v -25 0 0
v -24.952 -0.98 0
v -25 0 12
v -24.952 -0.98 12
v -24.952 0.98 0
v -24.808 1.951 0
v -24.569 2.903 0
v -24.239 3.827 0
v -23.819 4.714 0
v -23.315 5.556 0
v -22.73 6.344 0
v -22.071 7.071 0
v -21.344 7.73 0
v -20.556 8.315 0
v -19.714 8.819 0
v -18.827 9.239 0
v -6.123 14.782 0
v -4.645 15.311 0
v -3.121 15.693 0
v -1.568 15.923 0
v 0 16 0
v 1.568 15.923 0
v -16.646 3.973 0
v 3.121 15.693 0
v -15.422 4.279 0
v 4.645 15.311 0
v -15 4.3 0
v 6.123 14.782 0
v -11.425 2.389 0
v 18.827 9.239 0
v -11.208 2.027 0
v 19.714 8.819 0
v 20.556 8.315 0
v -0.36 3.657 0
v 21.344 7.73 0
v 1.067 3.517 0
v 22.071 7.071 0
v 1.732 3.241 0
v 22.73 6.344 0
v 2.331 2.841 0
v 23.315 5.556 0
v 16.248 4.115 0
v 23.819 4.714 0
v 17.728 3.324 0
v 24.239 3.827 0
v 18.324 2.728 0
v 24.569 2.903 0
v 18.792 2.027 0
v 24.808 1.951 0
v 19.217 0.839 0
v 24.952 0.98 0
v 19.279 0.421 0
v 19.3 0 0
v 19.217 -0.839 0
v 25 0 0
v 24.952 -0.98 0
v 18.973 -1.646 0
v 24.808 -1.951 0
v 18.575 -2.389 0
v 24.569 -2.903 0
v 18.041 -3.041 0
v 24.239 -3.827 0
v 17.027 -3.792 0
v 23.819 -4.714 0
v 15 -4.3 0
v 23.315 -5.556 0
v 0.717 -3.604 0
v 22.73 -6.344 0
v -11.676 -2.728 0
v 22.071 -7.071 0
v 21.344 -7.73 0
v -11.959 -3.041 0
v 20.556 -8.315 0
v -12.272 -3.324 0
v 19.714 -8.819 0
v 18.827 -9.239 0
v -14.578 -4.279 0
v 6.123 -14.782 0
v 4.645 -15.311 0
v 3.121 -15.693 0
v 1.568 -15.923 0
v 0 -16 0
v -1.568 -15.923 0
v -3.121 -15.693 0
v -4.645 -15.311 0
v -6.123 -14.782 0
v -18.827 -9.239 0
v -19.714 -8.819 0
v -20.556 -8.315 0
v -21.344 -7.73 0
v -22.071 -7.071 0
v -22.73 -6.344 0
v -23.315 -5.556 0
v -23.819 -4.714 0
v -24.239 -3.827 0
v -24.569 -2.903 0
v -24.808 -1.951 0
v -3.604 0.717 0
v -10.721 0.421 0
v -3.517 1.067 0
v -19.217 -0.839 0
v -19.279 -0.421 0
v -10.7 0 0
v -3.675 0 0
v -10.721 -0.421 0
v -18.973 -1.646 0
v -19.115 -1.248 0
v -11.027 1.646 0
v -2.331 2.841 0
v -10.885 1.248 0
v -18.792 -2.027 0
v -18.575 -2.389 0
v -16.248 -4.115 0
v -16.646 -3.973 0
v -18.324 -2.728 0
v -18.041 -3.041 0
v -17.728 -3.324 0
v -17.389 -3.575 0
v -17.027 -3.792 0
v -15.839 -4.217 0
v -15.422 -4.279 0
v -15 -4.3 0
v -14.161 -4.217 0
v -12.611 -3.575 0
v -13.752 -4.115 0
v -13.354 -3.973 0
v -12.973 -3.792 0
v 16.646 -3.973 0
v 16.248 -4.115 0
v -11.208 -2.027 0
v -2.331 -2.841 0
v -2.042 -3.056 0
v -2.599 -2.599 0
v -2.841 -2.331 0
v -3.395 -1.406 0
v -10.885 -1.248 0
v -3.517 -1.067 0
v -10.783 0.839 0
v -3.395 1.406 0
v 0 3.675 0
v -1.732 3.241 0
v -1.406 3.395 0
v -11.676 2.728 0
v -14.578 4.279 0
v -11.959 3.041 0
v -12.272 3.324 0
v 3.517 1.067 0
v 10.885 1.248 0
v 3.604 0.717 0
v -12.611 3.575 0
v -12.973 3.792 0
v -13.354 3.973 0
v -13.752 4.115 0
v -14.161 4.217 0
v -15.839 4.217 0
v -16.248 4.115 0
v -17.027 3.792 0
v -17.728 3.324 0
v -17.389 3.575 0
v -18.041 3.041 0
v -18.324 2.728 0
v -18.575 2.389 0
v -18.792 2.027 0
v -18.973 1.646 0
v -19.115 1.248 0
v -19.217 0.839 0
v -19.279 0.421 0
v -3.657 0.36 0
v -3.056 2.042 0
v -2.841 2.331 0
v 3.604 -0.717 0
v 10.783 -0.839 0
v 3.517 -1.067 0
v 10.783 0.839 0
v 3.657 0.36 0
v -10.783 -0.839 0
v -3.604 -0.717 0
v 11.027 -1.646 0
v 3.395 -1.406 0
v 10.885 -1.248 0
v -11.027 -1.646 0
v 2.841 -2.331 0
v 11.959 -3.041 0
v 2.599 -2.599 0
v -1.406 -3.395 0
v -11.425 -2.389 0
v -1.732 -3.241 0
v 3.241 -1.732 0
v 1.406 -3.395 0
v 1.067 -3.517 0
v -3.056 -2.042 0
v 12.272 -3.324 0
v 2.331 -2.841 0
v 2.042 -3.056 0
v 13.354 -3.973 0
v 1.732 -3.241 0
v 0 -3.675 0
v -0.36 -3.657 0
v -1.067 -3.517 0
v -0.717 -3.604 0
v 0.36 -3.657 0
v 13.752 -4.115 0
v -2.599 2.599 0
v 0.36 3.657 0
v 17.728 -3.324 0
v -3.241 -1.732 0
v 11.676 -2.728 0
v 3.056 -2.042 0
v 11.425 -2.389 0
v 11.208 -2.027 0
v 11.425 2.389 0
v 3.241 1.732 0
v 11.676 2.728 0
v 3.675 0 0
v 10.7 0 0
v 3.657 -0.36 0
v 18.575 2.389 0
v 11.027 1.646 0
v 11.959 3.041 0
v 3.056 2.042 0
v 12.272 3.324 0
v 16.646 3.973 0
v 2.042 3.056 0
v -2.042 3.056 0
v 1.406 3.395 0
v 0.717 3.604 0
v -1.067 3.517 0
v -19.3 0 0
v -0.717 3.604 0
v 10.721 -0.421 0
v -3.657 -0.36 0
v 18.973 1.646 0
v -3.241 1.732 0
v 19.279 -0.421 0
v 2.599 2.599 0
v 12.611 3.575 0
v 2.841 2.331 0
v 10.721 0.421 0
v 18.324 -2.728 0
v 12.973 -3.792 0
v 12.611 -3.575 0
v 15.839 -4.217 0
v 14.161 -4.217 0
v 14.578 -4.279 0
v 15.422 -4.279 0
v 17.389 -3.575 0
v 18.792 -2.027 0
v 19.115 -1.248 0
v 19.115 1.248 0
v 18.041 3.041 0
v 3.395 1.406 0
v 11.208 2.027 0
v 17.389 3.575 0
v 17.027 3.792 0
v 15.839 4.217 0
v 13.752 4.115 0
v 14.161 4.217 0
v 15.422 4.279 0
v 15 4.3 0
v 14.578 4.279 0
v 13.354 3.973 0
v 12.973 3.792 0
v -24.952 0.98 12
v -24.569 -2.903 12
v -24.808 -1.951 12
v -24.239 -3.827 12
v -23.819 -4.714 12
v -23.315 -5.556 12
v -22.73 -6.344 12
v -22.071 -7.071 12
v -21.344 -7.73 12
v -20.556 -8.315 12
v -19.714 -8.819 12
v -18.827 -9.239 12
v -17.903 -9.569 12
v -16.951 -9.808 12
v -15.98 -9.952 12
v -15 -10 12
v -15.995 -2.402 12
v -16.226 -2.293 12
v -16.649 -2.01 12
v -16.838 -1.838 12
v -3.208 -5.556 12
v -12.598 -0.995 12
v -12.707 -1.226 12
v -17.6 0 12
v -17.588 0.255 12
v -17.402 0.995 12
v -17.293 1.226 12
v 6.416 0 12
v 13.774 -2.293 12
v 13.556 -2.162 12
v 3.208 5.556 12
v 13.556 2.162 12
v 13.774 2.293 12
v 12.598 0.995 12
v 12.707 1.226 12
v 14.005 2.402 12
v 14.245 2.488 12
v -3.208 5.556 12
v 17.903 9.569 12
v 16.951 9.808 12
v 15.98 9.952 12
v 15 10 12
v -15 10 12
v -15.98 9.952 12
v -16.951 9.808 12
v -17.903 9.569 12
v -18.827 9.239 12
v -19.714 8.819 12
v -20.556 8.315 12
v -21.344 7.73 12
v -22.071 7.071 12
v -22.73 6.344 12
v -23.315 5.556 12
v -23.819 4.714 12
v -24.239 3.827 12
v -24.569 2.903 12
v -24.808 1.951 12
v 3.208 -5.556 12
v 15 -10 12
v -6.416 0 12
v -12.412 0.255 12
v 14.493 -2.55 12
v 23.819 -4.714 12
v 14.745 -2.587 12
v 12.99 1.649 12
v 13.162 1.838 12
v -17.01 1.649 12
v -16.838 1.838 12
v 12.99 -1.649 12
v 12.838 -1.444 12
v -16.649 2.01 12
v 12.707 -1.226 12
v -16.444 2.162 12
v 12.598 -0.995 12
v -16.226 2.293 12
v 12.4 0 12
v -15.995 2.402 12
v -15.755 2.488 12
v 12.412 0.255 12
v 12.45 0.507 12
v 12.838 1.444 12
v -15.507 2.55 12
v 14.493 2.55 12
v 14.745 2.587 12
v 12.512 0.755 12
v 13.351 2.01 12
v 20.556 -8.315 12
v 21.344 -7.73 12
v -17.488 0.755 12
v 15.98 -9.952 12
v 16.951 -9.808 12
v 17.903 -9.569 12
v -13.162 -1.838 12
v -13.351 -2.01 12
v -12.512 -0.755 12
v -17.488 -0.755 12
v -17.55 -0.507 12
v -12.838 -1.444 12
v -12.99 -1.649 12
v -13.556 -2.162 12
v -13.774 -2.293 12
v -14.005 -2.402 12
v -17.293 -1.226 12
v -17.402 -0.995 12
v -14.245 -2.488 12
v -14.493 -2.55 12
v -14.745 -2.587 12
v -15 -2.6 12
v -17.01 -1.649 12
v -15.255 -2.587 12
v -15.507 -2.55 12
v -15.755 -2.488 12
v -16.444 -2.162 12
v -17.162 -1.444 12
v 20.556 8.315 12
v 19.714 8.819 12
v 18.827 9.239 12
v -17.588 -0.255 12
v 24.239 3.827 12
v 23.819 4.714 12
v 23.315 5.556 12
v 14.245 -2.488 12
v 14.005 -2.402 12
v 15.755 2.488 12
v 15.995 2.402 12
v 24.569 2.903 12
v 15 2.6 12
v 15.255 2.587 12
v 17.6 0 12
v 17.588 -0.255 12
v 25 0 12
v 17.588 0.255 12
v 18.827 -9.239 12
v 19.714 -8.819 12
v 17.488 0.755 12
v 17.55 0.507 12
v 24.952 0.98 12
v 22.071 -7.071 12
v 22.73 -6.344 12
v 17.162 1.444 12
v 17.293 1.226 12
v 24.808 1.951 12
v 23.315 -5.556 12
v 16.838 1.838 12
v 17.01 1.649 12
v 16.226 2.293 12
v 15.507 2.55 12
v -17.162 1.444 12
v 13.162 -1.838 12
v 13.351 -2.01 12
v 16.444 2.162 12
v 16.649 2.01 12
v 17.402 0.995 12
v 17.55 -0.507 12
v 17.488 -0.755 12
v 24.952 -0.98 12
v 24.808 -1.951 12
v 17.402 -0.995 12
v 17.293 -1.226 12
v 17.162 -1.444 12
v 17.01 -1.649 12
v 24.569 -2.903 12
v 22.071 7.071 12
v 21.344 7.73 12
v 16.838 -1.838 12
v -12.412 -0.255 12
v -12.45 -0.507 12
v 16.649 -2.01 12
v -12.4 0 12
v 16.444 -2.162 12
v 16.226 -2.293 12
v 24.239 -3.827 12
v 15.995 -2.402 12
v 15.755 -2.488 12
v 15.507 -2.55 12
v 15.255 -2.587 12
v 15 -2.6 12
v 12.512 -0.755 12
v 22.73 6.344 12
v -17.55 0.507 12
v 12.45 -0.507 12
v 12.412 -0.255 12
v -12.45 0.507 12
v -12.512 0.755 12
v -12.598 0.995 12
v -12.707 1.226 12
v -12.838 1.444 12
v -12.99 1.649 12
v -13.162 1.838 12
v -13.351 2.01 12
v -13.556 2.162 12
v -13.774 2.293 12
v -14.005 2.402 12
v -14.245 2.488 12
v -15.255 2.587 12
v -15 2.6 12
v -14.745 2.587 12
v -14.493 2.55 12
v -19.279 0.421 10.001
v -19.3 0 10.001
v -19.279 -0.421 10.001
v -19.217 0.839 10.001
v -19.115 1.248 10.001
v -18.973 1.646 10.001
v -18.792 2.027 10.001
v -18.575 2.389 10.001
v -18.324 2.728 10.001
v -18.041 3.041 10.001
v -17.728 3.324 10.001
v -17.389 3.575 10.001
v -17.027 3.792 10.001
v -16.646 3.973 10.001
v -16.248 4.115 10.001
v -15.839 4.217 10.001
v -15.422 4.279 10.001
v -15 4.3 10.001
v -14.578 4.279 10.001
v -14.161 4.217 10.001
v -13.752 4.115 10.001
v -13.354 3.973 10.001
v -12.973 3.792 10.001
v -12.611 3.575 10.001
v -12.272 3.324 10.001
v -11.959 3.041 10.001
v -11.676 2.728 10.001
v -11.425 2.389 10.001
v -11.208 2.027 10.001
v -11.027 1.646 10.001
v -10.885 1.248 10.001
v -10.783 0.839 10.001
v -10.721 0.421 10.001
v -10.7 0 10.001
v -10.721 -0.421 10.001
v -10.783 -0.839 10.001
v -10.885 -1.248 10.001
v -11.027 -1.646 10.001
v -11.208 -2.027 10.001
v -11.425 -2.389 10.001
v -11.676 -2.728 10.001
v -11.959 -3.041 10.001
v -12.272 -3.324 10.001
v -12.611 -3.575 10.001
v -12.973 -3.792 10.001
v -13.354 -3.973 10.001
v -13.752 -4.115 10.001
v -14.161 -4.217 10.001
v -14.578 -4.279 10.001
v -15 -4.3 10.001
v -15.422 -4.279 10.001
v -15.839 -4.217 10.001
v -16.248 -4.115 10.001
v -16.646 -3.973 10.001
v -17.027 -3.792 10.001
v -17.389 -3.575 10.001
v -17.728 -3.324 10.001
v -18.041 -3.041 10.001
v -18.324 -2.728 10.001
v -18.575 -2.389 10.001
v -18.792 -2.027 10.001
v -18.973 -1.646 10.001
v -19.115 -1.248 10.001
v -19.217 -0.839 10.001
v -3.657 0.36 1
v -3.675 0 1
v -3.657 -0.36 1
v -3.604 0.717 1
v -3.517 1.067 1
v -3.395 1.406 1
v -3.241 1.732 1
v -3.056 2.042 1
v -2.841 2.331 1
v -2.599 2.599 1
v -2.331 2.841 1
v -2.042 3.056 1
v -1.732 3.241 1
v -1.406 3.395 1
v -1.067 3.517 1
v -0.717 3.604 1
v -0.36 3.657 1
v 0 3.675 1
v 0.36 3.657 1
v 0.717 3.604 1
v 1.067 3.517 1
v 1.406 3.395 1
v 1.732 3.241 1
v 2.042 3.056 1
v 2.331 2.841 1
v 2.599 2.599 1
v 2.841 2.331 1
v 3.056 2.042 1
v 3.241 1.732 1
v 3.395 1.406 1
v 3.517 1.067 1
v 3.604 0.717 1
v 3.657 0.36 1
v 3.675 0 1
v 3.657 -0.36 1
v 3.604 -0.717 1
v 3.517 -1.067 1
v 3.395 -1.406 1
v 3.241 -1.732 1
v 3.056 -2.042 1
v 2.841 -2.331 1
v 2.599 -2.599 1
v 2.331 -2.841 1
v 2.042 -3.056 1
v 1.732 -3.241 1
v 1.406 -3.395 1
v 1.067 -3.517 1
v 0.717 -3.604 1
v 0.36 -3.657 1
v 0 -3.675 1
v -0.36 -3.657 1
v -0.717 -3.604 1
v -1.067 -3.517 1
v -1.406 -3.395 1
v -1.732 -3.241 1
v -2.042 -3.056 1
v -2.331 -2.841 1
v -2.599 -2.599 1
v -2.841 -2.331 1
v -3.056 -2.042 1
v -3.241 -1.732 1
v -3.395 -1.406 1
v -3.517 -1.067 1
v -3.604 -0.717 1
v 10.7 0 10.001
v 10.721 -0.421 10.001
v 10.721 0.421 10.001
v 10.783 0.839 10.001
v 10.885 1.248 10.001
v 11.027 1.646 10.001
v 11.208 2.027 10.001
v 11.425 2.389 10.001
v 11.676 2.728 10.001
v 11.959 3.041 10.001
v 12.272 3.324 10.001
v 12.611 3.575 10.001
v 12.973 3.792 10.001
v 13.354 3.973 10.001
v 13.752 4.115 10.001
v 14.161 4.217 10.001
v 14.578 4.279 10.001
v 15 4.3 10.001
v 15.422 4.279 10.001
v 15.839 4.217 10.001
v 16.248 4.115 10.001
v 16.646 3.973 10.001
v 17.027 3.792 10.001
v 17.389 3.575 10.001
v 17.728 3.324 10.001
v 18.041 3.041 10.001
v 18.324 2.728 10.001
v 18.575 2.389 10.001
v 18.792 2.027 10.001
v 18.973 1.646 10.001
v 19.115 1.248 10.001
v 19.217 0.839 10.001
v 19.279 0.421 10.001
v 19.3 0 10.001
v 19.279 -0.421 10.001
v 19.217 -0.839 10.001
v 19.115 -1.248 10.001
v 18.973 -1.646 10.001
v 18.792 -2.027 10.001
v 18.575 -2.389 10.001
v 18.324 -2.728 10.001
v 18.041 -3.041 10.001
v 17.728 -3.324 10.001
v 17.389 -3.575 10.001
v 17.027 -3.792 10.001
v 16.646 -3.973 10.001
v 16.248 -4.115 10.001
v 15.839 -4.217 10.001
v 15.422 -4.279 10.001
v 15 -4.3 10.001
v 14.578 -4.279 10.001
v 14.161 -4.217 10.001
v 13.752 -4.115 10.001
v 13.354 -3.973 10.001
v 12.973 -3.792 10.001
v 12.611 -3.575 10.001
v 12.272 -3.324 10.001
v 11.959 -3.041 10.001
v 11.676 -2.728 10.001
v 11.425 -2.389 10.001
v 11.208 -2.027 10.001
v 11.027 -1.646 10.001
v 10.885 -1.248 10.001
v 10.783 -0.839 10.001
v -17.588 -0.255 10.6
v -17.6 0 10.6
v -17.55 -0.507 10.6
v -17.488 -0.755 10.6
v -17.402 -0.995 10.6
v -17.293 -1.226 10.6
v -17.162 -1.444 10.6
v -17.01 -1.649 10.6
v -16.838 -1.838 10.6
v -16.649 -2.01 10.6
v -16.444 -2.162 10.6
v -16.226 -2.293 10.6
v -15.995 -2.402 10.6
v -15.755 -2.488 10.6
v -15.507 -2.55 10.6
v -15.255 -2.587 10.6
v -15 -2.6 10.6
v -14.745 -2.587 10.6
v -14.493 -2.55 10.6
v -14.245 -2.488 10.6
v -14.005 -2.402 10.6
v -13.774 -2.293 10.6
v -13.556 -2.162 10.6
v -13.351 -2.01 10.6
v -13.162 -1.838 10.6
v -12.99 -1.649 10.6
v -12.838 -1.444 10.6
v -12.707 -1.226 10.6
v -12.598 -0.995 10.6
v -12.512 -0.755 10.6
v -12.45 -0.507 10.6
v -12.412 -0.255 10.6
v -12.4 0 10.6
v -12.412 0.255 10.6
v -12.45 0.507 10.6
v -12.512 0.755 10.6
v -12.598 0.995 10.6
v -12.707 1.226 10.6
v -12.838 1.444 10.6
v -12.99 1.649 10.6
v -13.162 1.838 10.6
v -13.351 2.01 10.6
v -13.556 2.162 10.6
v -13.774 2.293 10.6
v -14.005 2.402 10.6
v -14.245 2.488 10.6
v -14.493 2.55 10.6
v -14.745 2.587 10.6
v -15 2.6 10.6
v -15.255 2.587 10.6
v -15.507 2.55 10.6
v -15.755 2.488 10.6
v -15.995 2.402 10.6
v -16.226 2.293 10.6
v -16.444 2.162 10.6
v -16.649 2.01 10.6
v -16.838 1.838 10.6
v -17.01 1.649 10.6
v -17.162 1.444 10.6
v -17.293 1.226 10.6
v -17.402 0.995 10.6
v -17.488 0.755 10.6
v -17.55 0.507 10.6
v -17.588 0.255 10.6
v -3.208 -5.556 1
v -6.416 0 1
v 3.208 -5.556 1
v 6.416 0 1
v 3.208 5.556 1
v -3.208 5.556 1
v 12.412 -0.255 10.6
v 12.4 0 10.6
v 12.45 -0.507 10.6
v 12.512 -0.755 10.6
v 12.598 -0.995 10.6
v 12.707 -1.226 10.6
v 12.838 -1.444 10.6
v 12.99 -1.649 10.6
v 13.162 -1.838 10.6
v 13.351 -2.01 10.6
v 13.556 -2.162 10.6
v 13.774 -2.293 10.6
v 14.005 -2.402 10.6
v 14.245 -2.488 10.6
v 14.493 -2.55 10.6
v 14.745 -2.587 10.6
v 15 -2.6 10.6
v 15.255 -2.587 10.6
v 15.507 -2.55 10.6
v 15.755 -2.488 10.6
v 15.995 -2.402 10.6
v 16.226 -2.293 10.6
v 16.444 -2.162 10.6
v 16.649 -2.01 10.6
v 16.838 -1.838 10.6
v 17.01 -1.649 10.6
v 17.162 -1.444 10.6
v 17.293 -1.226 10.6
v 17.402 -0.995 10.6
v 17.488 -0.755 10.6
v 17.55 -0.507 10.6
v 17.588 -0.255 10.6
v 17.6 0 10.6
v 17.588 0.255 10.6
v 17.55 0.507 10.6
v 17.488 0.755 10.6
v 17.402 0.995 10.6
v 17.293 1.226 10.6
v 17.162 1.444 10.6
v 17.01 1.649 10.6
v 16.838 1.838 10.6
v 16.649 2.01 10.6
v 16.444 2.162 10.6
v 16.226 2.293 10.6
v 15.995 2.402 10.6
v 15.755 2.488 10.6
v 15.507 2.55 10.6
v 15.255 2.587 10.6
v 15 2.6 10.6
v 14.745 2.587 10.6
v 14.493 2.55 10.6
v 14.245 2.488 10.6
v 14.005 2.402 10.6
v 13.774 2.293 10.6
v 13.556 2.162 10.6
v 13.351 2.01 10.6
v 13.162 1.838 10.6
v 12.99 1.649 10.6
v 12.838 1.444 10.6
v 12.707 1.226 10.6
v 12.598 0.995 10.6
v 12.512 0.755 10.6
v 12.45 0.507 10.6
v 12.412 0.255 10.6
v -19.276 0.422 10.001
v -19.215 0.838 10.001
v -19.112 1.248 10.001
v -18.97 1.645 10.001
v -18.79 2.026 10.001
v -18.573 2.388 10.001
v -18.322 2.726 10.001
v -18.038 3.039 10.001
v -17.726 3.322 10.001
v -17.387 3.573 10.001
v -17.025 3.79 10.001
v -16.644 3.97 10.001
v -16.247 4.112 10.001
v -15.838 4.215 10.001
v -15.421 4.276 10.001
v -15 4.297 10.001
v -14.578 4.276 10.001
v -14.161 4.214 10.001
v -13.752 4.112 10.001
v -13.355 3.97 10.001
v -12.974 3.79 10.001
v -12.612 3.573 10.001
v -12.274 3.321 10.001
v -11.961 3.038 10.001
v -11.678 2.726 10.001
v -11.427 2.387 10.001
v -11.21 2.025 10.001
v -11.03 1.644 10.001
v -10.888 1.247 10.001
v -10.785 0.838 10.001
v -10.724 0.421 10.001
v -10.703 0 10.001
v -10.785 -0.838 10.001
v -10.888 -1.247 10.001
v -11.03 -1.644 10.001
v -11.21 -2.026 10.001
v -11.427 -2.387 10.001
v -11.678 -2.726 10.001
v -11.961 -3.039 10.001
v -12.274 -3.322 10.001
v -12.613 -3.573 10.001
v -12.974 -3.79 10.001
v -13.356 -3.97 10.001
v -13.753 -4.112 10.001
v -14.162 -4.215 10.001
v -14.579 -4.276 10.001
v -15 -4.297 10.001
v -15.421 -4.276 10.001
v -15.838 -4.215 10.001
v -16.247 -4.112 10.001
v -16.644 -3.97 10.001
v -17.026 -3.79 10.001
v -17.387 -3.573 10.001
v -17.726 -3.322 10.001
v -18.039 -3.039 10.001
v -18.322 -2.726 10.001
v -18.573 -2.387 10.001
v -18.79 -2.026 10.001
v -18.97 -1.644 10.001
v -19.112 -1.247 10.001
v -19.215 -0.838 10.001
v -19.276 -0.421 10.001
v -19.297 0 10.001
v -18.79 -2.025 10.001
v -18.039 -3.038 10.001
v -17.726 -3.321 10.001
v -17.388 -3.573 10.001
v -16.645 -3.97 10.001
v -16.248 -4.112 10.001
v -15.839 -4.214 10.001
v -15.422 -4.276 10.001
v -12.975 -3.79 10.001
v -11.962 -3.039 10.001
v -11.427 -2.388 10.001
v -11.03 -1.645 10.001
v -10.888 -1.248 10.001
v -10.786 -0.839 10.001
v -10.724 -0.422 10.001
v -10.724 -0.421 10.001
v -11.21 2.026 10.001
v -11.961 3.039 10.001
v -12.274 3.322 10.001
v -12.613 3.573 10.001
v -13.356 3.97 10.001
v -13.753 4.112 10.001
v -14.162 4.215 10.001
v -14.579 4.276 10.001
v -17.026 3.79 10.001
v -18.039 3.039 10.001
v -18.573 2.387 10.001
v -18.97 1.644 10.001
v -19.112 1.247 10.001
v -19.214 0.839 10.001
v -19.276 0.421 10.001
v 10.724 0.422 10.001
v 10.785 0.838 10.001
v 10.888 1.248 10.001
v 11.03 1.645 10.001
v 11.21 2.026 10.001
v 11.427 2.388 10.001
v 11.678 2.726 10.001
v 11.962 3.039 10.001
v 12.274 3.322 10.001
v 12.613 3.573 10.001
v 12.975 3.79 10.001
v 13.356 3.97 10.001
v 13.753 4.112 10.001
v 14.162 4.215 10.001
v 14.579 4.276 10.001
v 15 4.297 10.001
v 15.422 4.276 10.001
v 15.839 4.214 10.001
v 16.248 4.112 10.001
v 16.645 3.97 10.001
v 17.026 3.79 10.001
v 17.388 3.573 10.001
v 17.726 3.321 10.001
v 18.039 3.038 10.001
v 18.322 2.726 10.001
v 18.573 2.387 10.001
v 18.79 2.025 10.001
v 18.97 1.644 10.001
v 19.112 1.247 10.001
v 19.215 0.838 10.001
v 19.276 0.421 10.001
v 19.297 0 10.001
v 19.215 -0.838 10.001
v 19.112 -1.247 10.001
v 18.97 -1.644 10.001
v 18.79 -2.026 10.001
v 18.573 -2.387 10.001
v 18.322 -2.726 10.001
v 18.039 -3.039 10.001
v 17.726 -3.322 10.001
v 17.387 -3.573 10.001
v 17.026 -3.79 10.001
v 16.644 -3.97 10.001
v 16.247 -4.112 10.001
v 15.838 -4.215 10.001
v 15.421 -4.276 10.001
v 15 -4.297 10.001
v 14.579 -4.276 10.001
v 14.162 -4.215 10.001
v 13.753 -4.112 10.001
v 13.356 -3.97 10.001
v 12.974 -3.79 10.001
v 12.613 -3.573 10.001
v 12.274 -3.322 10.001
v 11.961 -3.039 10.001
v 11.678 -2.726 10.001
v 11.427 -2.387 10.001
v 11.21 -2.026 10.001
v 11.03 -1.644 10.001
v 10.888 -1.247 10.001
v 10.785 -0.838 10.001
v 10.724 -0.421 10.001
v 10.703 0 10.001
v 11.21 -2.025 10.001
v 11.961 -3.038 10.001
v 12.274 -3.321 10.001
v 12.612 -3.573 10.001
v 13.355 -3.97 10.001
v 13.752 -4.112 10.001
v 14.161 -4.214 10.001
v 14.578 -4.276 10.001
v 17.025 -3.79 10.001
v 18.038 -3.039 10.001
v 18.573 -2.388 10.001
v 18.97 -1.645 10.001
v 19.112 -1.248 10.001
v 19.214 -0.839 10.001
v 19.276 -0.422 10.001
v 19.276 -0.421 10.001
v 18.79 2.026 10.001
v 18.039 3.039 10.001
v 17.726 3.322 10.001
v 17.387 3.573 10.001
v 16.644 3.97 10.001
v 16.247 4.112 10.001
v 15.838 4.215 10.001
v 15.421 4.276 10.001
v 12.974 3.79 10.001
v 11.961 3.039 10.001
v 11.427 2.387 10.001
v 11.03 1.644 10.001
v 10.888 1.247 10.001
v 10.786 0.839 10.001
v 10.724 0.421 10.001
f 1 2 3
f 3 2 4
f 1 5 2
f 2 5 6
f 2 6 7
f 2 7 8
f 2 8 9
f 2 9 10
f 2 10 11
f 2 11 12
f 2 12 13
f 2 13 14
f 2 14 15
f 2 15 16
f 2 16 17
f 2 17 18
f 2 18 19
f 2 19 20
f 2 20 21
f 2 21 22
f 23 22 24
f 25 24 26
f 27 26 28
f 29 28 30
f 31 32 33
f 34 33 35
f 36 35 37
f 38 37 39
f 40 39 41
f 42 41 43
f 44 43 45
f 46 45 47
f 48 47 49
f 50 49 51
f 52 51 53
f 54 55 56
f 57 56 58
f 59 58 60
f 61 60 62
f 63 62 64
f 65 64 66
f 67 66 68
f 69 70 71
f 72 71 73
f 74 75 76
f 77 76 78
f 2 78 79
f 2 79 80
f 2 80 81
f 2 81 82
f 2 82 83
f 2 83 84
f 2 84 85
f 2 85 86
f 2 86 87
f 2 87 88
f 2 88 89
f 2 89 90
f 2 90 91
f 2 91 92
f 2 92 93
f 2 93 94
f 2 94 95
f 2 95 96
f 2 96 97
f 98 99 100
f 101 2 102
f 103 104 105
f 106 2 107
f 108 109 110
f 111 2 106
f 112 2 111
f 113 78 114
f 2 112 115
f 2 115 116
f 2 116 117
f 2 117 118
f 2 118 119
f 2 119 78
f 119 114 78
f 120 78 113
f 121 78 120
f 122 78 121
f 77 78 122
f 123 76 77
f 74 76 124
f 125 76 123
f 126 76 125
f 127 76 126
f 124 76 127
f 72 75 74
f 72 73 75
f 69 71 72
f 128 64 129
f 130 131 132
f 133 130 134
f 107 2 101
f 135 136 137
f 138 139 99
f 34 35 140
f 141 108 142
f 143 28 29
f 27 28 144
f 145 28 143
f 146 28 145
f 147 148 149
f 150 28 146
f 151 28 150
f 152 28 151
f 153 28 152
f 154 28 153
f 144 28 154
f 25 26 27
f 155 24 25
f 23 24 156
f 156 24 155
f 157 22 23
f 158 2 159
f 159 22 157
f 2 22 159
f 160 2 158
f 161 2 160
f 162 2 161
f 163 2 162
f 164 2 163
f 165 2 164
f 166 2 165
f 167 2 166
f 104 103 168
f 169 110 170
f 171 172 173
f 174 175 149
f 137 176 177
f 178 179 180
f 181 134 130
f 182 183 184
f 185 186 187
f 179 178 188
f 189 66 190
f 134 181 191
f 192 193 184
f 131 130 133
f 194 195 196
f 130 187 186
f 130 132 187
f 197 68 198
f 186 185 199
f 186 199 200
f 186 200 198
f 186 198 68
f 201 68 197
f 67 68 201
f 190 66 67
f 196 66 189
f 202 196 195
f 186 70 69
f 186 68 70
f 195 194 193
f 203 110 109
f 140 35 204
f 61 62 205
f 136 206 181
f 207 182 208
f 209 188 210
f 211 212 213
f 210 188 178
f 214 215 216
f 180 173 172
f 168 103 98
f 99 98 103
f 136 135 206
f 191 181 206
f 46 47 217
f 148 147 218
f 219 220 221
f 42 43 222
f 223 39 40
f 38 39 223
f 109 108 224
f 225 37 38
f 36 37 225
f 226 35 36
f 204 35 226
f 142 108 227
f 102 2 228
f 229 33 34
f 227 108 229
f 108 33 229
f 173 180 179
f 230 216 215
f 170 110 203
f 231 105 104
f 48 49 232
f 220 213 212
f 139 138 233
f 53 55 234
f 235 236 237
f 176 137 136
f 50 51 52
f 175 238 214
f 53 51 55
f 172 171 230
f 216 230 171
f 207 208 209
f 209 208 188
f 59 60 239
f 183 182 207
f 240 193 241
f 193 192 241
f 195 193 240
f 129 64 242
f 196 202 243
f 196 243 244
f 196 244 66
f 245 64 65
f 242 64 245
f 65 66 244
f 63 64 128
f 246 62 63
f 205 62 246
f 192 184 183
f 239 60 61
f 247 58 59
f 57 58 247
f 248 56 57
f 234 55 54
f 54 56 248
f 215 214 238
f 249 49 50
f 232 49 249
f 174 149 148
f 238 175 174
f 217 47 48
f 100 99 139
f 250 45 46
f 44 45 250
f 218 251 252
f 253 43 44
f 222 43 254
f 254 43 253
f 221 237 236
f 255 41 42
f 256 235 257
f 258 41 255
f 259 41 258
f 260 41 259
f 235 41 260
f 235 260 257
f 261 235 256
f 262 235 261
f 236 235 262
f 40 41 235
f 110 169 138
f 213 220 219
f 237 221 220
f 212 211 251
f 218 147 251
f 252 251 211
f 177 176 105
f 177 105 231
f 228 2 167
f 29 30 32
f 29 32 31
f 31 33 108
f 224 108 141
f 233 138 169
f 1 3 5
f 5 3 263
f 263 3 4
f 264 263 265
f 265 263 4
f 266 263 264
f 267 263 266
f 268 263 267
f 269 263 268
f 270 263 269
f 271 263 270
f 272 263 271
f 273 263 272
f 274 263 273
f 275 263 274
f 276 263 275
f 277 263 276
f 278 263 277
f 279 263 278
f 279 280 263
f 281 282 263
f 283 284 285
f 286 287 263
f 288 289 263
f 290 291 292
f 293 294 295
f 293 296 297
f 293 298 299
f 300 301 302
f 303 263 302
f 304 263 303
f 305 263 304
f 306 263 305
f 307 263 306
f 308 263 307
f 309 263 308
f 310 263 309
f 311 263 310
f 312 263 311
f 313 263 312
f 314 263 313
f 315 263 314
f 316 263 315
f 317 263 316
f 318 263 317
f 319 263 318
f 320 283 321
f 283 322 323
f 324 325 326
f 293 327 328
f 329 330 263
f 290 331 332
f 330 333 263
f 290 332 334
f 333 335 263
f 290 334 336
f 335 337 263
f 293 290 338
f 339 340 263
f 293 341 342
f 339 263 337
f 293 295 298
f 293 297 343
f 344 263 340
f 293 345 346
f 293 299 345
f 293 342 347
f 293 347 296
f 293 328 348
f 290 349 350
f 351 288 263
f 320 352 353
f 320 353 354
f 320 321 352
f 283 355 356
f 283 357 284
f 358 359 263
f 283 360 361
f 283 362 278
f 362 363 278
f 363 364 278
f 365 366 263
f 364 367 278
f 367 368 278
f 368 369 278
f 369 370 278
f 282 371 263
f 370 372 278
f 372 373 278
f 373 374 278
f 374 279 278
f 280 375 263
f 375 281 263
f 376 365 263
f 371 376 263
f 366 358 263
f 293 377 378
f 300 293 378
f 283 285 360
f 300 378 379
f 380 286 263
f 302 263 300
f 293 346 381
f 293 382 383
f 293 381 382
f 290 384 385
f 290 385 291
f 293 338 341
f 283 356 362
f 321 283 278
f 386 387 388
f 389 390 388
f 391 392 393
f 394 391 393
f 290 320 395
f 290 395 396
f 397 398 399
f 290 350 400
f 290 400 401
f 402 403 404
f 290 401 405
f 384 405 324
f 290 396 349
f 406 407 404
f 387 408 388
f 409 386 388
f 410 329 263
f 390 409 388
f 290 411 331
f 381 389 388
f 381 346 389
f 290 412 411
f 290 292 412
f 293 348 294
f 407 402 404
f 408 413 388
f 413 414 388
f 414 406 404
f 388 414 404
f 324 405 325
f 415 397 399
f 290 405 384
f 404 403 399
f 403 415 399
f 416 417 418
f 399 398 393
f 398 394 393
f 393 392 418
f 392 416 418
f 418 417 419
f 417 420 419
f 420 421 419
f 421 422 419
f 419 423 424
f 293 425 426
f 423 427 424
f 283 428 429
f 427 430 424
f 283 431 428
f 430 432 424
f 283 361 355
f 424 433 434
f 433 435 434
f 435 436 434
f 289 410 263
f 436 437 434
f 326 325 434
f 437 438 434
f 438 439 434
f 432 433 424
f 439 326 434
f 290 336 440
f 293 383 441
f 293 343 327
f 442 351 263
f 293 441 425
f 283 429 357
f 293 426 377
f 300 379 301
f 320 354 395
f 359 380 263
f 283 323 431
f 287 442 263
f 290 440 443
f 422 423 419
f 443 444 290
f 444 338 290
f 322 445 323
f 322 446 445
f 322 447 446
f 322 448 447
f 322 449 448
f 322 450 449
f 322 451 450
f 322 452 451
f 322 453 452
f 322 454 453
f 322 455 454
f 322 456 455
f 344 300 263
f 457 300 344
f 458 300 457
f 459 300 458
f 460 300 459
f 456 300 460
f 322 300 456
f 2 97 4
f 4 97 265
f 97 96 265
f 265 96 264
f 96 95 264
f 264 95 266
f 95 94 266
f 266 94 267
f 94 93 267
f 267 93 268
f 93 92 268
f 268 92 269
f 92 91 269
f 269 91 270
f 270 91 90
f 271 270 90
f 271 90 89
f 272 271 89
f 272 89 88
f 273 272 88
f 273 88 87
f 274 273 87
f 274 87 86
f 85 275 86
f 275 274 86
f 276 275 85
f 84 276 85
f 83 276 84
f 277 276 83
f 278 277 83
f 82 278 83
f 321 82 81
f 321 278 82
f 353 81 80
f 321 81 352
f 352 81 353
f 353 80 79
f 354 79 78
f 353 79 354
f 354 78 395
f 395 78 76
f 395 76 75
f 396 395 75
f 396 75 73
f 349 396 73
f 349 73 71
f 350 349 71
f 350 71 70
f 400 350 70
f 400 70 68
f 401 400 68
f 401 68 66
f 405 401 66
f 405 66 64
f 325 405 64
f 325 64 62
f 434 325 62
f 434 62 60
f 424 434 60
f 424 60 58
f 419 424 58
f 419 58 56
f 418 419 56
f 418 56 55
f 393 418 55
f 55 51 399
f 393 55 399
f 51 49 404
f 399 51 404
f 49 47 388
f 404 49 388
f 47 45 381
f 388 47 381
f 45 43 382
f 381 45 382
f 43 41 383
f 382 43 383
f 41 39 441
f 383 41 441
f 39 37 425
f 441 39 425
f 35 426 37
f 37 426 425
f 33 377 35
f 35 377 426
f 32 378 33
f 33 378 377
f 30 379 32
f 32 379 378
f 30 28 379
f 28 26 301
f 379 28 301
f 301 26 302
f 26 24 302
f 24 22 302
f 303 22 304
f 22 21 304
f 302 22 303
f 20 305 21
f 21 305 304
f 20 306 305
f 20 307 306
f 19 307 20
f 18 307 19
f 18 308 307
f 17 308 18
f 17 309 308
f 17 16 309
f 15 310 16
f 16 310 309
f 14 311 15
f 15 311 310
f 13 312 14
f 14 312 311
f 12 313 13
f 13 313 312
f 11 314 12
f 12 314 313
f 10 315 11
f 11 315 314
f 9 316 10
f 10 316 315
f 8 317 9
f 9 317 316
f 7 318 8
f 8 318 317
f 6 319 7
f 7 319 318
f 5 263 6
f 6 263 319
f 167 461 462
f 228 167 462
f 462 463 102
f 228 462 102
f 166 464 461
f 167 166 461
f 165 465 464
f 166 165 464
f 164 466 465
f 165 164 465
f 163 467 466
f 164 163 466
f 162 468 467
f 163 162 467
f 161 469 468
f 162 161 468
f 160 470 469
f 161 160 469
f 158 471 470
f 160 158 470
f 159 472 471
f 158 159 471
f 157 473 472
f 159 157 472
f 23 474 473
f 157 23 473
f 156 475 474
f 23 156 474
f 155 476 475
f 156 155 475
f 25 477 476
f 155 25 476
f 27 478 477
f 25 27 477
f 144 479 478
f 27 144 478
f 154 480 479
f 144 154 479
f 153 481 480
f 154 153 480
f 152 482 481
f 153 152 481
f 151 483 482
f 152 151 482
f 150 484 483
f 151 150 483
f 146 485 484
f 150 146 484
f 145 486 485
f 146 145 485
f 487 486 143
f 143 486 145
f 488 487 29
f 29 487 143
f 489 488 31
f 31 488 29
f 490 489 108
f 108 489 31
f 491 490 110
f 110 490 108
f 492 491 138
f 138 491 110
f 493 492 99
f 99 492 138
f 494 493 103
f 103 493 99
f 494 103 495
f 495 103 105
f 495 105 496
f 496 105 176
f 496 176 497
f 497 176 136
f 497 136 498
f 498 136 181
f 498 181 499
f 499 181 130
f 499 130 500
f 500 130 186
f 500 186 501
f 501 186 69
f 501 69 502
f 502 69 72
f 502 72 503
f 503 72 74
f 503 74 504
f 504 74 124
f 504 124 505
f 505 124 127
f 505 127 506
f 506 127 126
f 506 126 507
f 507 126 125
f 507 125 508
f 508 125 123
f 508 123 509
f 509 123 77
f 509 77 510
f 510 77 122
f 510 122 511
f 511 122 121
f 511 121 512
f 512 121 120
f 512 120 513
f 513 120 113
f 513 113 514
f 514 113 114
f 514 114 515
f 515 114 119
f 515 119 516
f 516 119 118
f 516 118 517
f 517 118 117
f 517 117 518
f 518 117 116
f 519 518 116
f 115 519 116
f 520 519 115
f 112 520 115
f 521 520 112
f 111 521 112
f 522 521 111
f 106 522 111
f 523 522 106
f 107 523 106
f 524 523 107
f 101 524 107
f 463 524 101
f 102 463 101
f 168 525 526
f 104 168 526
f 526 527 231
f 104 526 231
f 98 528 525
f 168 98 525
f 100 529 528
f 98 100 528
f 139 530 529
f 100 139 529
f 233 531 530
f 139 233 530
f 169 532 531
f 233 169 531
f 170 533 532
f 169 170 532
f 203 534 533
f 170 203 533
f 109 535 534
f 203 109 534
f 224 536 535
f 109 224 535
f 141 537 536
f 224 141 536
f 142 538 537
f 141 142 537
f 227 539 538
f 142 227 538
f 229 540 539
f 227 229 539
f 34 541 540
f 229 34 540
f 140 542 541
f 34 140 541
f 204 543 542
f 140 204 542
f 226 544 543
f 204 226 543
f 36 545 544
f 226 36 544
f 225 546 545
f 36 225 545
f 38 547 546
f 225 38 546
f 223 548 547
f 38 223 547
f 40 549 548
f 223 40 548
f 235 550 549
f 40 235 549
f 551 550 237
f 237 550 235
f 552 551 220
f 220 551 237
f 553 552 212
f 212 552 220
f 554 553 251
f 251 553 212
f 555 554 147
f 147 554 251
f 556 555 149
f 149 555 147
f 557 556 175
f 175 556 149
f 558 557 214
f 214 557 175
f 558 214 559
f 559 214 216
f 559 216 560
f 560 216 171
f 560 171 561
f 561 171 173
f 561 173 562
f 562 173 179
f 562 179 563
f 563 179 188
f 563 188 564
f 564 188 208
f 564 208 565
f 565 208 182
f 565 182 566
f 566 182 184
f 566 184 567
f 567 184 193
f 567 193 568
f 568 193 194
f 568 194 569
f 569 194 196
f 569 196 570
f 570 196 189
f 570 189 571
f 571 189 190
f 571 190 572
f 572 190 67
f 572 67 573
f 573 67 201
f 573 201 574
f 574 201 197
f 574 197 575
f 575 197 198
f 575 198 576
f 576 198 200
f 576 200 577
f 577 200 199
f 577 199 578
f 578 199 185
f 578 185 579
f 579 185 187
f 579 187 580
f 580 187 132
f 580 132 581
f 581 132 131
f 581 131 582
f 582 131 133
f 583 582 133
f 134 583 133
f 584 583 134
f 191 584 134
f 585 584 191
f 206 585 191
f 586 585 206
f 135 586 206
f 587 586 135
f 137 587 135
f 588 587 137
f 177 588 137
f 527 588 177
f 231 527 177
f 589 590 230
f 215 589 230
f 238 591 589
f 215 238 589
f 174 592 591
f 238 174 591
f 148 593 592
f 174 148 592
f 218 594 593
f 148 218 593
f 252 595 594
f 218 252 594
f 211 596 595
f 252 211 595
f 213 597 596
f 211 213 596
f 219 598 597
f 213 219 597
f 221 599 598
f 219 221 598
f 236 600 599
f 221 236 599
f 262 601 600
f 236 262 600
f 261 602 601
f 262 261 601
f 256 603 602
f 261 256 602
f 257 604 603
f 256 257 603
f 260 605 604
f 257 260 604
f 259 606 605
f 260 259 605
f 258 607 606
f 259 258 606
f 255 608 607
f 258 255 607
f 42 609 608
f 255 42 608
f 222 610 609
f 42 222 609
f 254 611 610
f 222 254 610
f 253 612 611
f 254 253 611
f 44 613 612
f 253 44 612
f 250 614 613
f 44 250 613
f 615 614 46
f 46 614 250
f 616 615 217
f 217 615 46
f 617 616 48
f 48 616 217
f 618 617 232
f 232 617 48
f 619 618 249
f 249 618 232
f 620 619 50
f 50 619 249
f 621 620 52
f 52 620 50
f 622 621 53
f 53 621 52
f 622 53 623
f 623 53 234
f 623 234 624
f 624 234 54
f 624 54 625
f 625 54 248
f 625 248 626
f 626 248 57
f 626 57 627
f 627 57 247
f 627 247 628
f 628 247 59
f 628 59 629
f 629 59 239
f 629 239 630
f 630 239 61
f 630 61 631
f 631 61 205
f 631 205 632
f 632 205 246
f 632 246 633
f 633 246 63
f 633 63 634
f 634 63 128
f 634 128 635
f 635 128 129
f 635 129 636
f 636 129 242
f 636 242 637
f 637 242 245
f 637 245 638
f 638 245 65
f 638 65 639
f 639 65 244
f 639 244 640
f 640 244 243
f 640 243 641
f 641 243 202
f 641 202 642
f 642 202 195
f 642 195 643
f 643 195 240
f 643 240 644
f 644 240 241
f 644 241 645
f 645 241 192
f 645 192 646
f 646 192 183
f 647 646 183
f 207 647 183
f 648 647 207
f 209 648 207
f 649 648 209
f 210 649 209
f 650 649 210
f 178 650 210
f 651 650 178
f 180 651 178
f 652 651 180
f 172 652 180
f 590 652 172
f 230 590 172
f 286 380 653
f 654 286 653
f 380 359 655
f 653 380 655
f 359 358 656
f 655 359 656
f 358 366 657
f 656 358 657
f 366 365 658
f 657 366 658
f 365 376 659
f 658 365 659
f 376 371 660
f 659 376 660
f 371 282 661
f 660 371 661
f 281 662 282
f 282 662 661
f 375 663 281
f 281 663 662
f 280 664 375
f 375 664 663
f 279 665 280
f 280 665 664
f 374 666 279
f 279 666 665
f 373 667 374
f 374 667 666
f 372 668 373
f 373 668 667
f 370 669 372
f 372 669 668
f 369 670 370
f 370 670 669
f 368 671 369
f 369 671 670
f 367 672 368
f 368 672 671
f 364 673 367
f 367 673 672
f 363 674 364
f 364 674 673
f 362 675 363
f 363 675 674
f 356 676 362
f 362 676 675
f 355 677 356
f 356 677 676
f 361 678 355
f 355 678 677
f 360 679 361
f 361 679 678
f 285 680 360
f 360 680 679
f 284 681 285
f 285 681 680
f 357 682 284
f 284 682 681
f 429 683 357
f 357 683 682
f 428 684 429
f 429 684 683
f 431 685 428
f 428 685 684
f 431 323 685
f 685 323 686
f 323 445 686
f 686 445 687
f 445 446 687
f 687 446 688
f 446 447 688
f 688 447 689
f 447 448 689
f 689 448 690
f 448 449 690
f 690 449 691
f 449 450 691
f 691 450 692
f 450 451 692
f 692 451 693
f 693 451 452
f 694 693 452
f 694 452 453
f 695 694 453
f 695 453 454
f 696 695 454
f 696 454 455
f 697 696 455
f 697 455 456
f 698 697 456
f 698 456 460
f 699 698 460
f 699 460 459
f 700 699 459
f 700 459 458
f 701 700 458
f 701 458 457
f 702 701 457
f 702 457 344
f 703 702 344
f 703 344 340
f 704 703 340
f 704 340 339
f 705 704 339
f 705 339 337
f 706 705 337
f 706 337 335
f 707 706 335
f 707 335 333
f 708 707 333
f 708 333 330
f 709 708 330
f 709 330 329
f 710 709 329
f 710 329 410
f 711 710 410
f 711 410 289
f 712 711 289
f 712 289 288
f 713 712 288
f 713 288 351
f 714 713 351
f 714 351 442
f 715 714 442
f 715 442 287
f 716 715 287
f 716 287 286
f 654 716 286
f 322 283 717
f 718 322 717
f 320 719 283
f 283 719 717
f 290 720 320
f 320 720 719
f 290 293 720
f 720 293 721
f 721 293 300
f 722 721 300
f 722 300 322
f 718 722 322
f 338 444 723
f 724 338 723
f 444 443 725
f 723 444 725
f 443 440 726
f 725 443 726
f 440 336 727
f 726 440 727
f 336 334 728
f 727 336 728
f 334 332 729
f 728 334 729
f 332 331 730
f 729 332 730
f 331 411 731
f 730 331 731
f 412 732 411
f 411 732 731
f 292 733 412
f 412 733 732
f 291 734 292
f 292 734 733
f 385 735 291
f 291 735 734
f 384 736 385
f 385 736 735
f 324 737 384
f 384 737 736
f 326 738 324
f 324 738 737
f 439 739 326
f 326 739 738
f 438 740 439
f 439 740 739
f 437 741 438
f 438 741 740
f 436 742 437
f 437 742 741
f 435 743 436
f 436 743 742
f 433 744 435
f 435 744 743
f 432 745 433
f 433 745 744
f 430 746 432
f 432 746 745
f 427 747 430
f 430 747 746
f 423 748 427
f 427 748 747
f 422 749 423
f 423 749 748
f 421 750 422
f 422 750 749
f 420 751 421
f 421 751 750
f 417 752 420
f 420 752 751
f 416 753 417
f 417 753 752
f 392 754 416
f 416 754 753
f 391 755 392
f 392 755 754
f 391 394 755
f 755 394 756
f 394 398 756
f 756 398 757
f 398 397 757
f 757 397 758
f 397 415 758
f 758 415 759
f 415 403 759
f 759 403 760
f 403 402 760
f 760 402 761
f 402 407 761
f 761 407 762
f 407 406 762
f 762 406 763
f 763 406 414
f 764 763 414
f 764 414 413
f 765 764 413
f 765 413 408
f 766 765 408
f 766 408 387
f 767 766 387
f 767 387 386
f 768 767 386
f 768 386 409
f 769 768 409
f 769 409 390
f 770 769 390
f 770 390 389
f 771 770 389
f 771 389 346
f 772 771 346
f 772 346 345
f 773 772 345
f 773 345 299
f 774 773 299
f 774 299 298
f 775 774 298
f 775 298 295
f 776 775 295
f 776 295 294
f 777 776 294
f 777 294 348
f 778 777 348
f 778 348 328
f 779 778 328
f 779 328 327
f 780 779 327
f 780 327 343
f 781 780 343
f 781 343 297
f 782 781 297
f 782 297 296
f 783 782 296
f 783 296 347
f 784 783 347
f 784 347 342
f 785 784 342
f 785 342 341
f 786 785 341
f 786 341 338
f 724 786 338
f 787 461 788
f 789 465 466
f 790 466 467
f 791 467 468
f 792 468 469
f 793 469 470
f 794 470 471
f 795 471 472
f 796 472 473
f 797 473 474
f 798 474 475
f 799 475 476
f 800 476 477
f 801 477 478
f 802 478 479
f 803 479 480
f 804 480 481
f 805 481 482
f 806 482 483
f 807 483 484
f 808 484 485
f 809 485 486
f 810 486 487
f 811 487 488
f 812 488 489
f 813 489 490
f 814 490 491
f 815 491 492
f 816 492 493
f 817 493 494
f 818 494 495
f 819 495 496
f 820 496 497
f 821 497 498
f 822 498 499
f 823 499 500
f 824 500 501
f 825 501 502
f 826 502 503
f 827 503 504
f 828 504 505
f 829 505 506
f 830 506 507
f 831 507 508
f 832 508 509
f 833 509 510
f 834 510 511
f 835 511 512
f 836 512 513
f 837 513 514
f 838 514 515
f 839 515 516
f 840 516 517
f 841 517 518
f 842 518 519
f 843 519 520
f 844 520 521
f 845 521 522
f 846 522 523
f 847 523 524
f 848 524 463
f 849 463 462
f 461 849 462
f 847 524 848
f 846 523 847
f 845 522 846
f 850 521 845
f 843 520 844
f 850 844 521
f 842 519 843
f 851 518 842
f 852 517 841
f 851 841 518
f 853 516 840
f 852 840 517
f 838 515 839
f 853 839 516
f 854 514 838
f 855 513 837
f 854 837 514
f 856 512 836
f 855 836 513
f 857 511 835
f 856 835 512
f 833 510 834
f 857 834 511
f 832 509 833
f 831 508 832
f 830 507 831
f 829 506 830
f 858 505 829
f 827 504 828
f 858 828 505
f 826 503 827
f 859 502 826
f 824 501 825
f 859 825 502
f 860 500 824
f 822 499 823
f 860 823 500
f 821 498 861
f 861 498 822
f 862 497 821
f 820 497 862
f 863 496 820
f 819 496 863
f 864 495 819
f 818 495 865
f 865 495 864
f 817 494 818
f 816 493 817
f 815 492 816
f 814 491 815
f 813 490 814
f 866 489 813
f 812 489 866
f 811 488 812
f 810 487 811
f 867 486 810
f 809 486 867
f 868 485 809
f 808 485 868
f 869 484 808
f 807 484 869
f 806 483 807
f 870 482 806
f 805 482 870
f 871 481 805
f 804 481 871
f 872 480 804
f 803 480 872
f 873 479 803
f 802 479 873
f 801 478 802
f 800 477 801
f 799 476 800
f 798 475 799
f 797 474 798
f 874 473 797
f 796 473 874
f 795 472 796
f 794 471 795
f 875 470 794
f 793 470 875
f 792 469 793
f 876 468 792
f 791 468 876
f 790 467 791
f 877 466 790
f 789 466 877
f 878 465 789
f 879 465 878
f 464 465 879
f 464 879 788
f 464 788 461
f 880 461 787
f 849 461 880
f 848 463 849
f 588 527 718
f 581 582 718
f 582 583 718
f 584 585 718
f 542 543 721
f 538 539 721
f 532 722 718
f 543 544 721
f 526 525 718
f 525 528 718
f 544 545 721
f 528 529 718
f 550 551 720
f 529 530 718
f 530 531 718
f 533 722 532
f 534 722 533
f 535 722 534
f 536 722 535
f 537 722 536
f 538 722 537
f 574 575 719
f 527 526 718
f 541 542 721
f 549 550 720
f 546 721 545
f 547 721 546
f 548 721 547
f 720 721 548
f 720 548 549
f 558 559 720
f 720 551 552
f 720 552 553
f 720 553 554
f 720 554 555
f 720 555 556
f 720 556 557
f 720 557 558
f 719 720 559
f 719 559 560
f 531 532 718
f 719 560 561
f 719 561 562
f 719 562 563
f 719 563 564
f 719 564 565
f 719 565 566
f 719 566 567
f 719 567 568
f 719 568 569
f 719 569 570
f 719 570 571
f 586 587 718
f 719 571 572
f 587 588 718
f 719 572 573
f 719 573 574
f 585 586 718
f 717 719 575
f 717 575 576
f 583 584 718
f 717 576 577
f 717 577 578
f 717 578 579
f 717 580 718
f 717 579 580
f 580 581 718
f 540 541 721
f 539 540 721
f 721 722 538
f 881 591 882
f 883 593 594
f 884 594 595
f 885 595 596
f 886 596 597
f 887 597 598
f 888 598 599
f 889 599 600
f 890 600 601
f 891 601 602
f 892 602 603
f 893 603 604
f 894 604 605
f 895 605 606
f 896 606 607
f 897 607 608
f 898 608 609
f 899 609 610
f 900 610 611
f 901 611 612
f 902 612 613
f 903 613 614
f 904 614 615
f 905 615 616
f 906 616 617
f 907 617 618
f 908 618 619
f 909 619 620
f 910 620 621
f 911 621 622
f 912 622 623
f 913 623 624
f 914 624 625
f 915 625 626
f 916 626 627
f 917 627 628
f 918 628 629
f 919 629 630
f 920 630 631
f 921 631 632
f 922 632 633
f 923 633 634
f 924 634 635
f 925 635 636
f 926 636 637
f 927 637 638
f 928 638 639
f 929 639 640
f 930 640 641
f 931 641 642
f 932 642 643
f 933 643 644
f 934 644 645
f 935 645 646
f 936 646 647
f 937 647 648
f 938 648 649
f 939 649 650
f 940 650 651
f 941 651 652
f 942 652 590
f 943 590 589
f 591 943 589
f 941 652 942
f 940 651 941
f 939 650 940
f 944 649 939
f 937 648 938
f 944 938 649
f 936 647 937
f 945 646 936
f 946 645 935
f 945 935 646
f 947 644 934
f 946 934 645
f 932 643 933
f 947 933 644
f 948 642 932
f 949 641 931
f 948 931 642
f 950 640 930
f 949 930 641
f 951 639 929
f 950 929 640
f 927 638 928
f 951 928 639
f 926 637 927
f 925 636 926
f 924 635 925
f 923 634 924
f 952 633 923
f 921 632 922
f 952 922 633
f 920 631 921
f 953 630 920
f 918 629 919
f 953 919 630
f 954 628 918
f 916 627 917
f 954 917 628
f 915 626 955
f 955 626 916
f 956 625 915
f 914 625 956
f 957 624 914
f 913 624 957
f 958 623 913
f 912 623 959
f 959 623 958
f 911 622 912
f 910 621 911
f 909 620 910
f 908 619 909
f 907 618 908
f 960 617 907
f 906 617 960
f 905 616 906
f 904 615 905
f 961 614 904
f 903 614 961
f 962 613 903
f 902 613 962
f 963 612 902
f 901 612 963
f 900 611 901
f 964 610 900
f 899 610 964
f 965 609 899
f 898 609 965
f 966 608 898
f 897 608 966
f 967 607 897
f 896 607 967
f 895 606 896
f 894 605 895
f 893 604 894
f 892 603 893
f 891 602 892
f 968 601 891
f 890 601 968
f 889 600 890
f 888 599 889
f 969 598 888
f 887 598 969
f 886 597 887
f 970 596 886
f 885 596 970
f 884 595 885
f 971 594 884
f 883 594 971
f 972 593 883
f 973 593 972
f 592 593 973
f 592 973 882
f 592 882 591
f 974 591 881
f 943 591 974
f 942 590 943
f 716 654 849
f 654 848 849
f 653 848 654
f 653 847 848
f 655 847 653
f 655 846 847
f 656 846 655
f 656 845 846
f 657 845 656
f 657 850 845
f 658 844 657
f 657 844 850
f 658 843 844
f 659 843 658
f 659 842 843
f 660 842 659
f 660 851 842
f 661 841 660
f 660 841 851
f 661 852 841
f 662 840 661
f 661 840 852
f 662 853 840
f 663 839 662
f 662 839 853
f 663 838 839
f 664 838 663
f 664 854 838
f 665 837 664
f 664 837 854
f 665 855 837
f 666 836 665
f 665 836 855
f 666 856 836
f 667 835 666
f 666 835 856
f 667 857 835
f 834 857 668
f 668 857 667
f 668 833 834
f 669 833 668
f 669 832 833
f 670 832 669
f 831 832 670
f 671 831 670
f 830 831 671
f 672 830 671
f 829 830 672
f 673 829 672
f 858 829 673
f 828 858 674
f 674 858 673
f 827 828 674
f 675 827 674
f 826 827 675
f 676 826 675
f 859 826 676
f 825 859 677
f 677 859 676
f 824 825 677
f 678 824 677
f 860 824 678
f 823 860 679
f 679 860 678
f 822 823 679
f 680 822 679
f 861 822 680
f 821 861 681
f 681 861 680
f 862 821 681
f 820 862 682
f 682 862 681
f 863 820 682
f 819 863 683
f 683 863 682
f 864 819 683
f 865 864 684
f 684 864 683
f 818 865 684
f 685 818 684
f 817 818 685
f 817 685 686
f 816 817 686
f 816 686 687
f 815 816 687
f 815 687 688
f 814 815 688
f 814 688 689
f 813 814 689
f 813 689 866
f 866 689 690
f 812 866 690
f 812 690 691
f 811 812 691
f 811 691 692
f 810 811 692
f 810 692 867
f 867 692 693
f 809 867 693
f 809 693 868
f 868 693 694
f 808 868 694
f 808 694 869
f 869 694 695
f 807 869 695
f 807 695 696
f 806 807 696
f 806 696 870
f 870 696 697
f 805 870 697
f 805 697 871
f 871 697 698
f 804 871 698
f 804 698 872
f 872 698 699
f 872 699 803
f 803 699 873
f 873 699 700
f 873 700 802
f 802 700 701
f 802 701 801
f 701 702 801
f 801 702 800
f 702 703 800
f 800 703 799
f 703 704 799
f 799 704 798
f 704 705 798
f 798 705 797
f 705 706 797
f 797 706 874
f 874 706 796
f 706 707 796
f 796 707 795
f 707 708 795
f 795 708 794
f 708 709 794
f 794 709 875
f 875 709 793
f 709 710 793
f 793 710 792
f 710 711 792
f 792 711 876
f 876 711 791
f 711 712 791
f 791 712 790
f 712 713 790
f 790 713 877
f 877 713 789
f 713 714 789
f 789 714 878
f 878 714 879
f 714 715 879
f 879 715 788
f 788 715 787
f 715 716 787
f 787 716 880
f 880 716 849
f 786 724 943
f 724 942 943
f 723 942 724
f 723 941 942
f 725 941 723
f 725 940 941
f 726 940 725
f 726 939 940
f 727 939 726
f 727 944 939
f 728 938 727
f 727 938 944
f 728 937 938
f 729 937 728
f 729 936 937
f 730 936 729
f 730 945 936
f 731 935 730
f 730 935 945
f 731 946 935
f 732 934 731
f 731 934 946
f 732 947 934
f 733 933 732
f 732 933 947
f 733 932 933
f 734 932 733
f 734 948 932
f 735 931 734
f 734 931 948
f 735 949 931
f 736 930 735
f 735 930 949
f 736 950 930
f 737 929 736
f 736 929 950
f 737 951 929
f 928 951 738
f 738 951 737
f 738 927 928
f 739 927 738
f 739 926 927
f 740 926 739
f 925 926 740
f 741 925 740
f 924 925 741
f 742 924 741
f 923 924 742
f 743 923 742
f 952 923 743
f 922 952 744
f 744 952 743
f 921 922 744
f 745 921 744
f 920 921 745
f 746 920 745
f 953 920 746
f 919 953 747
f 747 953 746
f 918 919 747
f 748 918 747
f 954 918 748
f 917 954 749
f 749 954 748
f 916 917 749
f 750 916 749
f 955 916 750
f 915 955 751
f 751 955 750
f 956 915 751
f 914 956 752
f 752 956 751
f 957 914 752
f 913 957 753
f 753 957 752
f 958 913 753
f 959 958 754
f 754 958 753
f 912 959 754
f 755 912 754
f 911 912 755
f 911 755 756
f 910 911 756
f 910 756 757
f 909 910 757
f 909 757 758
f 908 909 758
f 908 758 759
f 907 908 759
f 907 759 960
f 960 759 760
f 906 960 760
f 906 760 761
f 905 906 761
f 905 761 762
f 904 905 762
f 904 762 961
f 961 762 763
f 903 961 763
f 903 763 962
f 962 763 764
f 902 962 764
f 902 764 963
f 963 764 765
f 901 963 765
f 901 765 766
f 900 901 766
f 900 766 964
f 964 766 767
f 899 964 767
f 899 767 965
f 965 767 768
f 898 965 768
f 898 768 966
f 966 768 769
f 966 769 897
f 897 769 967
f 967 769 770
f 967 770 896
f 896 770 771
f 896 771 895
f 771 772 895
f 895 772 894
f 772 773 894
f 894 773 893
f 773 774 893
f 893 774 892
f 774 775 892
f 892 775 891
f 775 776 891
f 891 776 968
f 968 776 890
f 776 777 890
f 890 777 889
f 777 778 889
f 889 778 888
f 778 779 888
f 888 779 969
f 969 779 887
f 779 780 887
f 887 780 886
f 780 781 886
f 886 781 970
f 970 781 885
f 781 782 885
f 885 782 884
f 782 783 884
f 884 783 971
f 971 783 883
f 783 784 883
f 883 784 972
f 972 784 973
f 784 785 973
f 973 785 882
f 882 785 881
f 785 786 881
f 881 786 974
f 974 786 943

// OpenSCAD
$fn=64;

module hex(w,h) {
  b=w/2;
  a=tan(30)*b;
  for (x = [ 0 : 5] ) {
    rotate([0,0,x*60]) translate([a*-1,0,0]) cube([2*a,b,h]);
  }
}



difference() {
  union(){
    hull() {
      cylinder(12,16,10);
      translate([15,0,0]) cylinder(12,10,10);
      translate([-15,0,0]) cylinder(12,10,10);
    }
  }
  
  translate([0,0,1]) hex(25.4*7/16,12);
  translate([0,0,-1]) cylinder(h=3,r=(25.4/8)+0.5);
  translate([15,0,-1]) cylinder(14,2.6,2.6);
  translate([-15,0,-1]) cylinder(14,2.6,2.6);

  translate([15,0,10]) cylinder(0.6,4.3,2.6);
  translate([-15,0,10]) cylinder(0.6,4.3,2.6);

  translate([15,0,-1]) cylinder(11.001,4.3,4.3);
  translate([-15,0,-1]) cylinder(11.001,4.3,4.3);

}
